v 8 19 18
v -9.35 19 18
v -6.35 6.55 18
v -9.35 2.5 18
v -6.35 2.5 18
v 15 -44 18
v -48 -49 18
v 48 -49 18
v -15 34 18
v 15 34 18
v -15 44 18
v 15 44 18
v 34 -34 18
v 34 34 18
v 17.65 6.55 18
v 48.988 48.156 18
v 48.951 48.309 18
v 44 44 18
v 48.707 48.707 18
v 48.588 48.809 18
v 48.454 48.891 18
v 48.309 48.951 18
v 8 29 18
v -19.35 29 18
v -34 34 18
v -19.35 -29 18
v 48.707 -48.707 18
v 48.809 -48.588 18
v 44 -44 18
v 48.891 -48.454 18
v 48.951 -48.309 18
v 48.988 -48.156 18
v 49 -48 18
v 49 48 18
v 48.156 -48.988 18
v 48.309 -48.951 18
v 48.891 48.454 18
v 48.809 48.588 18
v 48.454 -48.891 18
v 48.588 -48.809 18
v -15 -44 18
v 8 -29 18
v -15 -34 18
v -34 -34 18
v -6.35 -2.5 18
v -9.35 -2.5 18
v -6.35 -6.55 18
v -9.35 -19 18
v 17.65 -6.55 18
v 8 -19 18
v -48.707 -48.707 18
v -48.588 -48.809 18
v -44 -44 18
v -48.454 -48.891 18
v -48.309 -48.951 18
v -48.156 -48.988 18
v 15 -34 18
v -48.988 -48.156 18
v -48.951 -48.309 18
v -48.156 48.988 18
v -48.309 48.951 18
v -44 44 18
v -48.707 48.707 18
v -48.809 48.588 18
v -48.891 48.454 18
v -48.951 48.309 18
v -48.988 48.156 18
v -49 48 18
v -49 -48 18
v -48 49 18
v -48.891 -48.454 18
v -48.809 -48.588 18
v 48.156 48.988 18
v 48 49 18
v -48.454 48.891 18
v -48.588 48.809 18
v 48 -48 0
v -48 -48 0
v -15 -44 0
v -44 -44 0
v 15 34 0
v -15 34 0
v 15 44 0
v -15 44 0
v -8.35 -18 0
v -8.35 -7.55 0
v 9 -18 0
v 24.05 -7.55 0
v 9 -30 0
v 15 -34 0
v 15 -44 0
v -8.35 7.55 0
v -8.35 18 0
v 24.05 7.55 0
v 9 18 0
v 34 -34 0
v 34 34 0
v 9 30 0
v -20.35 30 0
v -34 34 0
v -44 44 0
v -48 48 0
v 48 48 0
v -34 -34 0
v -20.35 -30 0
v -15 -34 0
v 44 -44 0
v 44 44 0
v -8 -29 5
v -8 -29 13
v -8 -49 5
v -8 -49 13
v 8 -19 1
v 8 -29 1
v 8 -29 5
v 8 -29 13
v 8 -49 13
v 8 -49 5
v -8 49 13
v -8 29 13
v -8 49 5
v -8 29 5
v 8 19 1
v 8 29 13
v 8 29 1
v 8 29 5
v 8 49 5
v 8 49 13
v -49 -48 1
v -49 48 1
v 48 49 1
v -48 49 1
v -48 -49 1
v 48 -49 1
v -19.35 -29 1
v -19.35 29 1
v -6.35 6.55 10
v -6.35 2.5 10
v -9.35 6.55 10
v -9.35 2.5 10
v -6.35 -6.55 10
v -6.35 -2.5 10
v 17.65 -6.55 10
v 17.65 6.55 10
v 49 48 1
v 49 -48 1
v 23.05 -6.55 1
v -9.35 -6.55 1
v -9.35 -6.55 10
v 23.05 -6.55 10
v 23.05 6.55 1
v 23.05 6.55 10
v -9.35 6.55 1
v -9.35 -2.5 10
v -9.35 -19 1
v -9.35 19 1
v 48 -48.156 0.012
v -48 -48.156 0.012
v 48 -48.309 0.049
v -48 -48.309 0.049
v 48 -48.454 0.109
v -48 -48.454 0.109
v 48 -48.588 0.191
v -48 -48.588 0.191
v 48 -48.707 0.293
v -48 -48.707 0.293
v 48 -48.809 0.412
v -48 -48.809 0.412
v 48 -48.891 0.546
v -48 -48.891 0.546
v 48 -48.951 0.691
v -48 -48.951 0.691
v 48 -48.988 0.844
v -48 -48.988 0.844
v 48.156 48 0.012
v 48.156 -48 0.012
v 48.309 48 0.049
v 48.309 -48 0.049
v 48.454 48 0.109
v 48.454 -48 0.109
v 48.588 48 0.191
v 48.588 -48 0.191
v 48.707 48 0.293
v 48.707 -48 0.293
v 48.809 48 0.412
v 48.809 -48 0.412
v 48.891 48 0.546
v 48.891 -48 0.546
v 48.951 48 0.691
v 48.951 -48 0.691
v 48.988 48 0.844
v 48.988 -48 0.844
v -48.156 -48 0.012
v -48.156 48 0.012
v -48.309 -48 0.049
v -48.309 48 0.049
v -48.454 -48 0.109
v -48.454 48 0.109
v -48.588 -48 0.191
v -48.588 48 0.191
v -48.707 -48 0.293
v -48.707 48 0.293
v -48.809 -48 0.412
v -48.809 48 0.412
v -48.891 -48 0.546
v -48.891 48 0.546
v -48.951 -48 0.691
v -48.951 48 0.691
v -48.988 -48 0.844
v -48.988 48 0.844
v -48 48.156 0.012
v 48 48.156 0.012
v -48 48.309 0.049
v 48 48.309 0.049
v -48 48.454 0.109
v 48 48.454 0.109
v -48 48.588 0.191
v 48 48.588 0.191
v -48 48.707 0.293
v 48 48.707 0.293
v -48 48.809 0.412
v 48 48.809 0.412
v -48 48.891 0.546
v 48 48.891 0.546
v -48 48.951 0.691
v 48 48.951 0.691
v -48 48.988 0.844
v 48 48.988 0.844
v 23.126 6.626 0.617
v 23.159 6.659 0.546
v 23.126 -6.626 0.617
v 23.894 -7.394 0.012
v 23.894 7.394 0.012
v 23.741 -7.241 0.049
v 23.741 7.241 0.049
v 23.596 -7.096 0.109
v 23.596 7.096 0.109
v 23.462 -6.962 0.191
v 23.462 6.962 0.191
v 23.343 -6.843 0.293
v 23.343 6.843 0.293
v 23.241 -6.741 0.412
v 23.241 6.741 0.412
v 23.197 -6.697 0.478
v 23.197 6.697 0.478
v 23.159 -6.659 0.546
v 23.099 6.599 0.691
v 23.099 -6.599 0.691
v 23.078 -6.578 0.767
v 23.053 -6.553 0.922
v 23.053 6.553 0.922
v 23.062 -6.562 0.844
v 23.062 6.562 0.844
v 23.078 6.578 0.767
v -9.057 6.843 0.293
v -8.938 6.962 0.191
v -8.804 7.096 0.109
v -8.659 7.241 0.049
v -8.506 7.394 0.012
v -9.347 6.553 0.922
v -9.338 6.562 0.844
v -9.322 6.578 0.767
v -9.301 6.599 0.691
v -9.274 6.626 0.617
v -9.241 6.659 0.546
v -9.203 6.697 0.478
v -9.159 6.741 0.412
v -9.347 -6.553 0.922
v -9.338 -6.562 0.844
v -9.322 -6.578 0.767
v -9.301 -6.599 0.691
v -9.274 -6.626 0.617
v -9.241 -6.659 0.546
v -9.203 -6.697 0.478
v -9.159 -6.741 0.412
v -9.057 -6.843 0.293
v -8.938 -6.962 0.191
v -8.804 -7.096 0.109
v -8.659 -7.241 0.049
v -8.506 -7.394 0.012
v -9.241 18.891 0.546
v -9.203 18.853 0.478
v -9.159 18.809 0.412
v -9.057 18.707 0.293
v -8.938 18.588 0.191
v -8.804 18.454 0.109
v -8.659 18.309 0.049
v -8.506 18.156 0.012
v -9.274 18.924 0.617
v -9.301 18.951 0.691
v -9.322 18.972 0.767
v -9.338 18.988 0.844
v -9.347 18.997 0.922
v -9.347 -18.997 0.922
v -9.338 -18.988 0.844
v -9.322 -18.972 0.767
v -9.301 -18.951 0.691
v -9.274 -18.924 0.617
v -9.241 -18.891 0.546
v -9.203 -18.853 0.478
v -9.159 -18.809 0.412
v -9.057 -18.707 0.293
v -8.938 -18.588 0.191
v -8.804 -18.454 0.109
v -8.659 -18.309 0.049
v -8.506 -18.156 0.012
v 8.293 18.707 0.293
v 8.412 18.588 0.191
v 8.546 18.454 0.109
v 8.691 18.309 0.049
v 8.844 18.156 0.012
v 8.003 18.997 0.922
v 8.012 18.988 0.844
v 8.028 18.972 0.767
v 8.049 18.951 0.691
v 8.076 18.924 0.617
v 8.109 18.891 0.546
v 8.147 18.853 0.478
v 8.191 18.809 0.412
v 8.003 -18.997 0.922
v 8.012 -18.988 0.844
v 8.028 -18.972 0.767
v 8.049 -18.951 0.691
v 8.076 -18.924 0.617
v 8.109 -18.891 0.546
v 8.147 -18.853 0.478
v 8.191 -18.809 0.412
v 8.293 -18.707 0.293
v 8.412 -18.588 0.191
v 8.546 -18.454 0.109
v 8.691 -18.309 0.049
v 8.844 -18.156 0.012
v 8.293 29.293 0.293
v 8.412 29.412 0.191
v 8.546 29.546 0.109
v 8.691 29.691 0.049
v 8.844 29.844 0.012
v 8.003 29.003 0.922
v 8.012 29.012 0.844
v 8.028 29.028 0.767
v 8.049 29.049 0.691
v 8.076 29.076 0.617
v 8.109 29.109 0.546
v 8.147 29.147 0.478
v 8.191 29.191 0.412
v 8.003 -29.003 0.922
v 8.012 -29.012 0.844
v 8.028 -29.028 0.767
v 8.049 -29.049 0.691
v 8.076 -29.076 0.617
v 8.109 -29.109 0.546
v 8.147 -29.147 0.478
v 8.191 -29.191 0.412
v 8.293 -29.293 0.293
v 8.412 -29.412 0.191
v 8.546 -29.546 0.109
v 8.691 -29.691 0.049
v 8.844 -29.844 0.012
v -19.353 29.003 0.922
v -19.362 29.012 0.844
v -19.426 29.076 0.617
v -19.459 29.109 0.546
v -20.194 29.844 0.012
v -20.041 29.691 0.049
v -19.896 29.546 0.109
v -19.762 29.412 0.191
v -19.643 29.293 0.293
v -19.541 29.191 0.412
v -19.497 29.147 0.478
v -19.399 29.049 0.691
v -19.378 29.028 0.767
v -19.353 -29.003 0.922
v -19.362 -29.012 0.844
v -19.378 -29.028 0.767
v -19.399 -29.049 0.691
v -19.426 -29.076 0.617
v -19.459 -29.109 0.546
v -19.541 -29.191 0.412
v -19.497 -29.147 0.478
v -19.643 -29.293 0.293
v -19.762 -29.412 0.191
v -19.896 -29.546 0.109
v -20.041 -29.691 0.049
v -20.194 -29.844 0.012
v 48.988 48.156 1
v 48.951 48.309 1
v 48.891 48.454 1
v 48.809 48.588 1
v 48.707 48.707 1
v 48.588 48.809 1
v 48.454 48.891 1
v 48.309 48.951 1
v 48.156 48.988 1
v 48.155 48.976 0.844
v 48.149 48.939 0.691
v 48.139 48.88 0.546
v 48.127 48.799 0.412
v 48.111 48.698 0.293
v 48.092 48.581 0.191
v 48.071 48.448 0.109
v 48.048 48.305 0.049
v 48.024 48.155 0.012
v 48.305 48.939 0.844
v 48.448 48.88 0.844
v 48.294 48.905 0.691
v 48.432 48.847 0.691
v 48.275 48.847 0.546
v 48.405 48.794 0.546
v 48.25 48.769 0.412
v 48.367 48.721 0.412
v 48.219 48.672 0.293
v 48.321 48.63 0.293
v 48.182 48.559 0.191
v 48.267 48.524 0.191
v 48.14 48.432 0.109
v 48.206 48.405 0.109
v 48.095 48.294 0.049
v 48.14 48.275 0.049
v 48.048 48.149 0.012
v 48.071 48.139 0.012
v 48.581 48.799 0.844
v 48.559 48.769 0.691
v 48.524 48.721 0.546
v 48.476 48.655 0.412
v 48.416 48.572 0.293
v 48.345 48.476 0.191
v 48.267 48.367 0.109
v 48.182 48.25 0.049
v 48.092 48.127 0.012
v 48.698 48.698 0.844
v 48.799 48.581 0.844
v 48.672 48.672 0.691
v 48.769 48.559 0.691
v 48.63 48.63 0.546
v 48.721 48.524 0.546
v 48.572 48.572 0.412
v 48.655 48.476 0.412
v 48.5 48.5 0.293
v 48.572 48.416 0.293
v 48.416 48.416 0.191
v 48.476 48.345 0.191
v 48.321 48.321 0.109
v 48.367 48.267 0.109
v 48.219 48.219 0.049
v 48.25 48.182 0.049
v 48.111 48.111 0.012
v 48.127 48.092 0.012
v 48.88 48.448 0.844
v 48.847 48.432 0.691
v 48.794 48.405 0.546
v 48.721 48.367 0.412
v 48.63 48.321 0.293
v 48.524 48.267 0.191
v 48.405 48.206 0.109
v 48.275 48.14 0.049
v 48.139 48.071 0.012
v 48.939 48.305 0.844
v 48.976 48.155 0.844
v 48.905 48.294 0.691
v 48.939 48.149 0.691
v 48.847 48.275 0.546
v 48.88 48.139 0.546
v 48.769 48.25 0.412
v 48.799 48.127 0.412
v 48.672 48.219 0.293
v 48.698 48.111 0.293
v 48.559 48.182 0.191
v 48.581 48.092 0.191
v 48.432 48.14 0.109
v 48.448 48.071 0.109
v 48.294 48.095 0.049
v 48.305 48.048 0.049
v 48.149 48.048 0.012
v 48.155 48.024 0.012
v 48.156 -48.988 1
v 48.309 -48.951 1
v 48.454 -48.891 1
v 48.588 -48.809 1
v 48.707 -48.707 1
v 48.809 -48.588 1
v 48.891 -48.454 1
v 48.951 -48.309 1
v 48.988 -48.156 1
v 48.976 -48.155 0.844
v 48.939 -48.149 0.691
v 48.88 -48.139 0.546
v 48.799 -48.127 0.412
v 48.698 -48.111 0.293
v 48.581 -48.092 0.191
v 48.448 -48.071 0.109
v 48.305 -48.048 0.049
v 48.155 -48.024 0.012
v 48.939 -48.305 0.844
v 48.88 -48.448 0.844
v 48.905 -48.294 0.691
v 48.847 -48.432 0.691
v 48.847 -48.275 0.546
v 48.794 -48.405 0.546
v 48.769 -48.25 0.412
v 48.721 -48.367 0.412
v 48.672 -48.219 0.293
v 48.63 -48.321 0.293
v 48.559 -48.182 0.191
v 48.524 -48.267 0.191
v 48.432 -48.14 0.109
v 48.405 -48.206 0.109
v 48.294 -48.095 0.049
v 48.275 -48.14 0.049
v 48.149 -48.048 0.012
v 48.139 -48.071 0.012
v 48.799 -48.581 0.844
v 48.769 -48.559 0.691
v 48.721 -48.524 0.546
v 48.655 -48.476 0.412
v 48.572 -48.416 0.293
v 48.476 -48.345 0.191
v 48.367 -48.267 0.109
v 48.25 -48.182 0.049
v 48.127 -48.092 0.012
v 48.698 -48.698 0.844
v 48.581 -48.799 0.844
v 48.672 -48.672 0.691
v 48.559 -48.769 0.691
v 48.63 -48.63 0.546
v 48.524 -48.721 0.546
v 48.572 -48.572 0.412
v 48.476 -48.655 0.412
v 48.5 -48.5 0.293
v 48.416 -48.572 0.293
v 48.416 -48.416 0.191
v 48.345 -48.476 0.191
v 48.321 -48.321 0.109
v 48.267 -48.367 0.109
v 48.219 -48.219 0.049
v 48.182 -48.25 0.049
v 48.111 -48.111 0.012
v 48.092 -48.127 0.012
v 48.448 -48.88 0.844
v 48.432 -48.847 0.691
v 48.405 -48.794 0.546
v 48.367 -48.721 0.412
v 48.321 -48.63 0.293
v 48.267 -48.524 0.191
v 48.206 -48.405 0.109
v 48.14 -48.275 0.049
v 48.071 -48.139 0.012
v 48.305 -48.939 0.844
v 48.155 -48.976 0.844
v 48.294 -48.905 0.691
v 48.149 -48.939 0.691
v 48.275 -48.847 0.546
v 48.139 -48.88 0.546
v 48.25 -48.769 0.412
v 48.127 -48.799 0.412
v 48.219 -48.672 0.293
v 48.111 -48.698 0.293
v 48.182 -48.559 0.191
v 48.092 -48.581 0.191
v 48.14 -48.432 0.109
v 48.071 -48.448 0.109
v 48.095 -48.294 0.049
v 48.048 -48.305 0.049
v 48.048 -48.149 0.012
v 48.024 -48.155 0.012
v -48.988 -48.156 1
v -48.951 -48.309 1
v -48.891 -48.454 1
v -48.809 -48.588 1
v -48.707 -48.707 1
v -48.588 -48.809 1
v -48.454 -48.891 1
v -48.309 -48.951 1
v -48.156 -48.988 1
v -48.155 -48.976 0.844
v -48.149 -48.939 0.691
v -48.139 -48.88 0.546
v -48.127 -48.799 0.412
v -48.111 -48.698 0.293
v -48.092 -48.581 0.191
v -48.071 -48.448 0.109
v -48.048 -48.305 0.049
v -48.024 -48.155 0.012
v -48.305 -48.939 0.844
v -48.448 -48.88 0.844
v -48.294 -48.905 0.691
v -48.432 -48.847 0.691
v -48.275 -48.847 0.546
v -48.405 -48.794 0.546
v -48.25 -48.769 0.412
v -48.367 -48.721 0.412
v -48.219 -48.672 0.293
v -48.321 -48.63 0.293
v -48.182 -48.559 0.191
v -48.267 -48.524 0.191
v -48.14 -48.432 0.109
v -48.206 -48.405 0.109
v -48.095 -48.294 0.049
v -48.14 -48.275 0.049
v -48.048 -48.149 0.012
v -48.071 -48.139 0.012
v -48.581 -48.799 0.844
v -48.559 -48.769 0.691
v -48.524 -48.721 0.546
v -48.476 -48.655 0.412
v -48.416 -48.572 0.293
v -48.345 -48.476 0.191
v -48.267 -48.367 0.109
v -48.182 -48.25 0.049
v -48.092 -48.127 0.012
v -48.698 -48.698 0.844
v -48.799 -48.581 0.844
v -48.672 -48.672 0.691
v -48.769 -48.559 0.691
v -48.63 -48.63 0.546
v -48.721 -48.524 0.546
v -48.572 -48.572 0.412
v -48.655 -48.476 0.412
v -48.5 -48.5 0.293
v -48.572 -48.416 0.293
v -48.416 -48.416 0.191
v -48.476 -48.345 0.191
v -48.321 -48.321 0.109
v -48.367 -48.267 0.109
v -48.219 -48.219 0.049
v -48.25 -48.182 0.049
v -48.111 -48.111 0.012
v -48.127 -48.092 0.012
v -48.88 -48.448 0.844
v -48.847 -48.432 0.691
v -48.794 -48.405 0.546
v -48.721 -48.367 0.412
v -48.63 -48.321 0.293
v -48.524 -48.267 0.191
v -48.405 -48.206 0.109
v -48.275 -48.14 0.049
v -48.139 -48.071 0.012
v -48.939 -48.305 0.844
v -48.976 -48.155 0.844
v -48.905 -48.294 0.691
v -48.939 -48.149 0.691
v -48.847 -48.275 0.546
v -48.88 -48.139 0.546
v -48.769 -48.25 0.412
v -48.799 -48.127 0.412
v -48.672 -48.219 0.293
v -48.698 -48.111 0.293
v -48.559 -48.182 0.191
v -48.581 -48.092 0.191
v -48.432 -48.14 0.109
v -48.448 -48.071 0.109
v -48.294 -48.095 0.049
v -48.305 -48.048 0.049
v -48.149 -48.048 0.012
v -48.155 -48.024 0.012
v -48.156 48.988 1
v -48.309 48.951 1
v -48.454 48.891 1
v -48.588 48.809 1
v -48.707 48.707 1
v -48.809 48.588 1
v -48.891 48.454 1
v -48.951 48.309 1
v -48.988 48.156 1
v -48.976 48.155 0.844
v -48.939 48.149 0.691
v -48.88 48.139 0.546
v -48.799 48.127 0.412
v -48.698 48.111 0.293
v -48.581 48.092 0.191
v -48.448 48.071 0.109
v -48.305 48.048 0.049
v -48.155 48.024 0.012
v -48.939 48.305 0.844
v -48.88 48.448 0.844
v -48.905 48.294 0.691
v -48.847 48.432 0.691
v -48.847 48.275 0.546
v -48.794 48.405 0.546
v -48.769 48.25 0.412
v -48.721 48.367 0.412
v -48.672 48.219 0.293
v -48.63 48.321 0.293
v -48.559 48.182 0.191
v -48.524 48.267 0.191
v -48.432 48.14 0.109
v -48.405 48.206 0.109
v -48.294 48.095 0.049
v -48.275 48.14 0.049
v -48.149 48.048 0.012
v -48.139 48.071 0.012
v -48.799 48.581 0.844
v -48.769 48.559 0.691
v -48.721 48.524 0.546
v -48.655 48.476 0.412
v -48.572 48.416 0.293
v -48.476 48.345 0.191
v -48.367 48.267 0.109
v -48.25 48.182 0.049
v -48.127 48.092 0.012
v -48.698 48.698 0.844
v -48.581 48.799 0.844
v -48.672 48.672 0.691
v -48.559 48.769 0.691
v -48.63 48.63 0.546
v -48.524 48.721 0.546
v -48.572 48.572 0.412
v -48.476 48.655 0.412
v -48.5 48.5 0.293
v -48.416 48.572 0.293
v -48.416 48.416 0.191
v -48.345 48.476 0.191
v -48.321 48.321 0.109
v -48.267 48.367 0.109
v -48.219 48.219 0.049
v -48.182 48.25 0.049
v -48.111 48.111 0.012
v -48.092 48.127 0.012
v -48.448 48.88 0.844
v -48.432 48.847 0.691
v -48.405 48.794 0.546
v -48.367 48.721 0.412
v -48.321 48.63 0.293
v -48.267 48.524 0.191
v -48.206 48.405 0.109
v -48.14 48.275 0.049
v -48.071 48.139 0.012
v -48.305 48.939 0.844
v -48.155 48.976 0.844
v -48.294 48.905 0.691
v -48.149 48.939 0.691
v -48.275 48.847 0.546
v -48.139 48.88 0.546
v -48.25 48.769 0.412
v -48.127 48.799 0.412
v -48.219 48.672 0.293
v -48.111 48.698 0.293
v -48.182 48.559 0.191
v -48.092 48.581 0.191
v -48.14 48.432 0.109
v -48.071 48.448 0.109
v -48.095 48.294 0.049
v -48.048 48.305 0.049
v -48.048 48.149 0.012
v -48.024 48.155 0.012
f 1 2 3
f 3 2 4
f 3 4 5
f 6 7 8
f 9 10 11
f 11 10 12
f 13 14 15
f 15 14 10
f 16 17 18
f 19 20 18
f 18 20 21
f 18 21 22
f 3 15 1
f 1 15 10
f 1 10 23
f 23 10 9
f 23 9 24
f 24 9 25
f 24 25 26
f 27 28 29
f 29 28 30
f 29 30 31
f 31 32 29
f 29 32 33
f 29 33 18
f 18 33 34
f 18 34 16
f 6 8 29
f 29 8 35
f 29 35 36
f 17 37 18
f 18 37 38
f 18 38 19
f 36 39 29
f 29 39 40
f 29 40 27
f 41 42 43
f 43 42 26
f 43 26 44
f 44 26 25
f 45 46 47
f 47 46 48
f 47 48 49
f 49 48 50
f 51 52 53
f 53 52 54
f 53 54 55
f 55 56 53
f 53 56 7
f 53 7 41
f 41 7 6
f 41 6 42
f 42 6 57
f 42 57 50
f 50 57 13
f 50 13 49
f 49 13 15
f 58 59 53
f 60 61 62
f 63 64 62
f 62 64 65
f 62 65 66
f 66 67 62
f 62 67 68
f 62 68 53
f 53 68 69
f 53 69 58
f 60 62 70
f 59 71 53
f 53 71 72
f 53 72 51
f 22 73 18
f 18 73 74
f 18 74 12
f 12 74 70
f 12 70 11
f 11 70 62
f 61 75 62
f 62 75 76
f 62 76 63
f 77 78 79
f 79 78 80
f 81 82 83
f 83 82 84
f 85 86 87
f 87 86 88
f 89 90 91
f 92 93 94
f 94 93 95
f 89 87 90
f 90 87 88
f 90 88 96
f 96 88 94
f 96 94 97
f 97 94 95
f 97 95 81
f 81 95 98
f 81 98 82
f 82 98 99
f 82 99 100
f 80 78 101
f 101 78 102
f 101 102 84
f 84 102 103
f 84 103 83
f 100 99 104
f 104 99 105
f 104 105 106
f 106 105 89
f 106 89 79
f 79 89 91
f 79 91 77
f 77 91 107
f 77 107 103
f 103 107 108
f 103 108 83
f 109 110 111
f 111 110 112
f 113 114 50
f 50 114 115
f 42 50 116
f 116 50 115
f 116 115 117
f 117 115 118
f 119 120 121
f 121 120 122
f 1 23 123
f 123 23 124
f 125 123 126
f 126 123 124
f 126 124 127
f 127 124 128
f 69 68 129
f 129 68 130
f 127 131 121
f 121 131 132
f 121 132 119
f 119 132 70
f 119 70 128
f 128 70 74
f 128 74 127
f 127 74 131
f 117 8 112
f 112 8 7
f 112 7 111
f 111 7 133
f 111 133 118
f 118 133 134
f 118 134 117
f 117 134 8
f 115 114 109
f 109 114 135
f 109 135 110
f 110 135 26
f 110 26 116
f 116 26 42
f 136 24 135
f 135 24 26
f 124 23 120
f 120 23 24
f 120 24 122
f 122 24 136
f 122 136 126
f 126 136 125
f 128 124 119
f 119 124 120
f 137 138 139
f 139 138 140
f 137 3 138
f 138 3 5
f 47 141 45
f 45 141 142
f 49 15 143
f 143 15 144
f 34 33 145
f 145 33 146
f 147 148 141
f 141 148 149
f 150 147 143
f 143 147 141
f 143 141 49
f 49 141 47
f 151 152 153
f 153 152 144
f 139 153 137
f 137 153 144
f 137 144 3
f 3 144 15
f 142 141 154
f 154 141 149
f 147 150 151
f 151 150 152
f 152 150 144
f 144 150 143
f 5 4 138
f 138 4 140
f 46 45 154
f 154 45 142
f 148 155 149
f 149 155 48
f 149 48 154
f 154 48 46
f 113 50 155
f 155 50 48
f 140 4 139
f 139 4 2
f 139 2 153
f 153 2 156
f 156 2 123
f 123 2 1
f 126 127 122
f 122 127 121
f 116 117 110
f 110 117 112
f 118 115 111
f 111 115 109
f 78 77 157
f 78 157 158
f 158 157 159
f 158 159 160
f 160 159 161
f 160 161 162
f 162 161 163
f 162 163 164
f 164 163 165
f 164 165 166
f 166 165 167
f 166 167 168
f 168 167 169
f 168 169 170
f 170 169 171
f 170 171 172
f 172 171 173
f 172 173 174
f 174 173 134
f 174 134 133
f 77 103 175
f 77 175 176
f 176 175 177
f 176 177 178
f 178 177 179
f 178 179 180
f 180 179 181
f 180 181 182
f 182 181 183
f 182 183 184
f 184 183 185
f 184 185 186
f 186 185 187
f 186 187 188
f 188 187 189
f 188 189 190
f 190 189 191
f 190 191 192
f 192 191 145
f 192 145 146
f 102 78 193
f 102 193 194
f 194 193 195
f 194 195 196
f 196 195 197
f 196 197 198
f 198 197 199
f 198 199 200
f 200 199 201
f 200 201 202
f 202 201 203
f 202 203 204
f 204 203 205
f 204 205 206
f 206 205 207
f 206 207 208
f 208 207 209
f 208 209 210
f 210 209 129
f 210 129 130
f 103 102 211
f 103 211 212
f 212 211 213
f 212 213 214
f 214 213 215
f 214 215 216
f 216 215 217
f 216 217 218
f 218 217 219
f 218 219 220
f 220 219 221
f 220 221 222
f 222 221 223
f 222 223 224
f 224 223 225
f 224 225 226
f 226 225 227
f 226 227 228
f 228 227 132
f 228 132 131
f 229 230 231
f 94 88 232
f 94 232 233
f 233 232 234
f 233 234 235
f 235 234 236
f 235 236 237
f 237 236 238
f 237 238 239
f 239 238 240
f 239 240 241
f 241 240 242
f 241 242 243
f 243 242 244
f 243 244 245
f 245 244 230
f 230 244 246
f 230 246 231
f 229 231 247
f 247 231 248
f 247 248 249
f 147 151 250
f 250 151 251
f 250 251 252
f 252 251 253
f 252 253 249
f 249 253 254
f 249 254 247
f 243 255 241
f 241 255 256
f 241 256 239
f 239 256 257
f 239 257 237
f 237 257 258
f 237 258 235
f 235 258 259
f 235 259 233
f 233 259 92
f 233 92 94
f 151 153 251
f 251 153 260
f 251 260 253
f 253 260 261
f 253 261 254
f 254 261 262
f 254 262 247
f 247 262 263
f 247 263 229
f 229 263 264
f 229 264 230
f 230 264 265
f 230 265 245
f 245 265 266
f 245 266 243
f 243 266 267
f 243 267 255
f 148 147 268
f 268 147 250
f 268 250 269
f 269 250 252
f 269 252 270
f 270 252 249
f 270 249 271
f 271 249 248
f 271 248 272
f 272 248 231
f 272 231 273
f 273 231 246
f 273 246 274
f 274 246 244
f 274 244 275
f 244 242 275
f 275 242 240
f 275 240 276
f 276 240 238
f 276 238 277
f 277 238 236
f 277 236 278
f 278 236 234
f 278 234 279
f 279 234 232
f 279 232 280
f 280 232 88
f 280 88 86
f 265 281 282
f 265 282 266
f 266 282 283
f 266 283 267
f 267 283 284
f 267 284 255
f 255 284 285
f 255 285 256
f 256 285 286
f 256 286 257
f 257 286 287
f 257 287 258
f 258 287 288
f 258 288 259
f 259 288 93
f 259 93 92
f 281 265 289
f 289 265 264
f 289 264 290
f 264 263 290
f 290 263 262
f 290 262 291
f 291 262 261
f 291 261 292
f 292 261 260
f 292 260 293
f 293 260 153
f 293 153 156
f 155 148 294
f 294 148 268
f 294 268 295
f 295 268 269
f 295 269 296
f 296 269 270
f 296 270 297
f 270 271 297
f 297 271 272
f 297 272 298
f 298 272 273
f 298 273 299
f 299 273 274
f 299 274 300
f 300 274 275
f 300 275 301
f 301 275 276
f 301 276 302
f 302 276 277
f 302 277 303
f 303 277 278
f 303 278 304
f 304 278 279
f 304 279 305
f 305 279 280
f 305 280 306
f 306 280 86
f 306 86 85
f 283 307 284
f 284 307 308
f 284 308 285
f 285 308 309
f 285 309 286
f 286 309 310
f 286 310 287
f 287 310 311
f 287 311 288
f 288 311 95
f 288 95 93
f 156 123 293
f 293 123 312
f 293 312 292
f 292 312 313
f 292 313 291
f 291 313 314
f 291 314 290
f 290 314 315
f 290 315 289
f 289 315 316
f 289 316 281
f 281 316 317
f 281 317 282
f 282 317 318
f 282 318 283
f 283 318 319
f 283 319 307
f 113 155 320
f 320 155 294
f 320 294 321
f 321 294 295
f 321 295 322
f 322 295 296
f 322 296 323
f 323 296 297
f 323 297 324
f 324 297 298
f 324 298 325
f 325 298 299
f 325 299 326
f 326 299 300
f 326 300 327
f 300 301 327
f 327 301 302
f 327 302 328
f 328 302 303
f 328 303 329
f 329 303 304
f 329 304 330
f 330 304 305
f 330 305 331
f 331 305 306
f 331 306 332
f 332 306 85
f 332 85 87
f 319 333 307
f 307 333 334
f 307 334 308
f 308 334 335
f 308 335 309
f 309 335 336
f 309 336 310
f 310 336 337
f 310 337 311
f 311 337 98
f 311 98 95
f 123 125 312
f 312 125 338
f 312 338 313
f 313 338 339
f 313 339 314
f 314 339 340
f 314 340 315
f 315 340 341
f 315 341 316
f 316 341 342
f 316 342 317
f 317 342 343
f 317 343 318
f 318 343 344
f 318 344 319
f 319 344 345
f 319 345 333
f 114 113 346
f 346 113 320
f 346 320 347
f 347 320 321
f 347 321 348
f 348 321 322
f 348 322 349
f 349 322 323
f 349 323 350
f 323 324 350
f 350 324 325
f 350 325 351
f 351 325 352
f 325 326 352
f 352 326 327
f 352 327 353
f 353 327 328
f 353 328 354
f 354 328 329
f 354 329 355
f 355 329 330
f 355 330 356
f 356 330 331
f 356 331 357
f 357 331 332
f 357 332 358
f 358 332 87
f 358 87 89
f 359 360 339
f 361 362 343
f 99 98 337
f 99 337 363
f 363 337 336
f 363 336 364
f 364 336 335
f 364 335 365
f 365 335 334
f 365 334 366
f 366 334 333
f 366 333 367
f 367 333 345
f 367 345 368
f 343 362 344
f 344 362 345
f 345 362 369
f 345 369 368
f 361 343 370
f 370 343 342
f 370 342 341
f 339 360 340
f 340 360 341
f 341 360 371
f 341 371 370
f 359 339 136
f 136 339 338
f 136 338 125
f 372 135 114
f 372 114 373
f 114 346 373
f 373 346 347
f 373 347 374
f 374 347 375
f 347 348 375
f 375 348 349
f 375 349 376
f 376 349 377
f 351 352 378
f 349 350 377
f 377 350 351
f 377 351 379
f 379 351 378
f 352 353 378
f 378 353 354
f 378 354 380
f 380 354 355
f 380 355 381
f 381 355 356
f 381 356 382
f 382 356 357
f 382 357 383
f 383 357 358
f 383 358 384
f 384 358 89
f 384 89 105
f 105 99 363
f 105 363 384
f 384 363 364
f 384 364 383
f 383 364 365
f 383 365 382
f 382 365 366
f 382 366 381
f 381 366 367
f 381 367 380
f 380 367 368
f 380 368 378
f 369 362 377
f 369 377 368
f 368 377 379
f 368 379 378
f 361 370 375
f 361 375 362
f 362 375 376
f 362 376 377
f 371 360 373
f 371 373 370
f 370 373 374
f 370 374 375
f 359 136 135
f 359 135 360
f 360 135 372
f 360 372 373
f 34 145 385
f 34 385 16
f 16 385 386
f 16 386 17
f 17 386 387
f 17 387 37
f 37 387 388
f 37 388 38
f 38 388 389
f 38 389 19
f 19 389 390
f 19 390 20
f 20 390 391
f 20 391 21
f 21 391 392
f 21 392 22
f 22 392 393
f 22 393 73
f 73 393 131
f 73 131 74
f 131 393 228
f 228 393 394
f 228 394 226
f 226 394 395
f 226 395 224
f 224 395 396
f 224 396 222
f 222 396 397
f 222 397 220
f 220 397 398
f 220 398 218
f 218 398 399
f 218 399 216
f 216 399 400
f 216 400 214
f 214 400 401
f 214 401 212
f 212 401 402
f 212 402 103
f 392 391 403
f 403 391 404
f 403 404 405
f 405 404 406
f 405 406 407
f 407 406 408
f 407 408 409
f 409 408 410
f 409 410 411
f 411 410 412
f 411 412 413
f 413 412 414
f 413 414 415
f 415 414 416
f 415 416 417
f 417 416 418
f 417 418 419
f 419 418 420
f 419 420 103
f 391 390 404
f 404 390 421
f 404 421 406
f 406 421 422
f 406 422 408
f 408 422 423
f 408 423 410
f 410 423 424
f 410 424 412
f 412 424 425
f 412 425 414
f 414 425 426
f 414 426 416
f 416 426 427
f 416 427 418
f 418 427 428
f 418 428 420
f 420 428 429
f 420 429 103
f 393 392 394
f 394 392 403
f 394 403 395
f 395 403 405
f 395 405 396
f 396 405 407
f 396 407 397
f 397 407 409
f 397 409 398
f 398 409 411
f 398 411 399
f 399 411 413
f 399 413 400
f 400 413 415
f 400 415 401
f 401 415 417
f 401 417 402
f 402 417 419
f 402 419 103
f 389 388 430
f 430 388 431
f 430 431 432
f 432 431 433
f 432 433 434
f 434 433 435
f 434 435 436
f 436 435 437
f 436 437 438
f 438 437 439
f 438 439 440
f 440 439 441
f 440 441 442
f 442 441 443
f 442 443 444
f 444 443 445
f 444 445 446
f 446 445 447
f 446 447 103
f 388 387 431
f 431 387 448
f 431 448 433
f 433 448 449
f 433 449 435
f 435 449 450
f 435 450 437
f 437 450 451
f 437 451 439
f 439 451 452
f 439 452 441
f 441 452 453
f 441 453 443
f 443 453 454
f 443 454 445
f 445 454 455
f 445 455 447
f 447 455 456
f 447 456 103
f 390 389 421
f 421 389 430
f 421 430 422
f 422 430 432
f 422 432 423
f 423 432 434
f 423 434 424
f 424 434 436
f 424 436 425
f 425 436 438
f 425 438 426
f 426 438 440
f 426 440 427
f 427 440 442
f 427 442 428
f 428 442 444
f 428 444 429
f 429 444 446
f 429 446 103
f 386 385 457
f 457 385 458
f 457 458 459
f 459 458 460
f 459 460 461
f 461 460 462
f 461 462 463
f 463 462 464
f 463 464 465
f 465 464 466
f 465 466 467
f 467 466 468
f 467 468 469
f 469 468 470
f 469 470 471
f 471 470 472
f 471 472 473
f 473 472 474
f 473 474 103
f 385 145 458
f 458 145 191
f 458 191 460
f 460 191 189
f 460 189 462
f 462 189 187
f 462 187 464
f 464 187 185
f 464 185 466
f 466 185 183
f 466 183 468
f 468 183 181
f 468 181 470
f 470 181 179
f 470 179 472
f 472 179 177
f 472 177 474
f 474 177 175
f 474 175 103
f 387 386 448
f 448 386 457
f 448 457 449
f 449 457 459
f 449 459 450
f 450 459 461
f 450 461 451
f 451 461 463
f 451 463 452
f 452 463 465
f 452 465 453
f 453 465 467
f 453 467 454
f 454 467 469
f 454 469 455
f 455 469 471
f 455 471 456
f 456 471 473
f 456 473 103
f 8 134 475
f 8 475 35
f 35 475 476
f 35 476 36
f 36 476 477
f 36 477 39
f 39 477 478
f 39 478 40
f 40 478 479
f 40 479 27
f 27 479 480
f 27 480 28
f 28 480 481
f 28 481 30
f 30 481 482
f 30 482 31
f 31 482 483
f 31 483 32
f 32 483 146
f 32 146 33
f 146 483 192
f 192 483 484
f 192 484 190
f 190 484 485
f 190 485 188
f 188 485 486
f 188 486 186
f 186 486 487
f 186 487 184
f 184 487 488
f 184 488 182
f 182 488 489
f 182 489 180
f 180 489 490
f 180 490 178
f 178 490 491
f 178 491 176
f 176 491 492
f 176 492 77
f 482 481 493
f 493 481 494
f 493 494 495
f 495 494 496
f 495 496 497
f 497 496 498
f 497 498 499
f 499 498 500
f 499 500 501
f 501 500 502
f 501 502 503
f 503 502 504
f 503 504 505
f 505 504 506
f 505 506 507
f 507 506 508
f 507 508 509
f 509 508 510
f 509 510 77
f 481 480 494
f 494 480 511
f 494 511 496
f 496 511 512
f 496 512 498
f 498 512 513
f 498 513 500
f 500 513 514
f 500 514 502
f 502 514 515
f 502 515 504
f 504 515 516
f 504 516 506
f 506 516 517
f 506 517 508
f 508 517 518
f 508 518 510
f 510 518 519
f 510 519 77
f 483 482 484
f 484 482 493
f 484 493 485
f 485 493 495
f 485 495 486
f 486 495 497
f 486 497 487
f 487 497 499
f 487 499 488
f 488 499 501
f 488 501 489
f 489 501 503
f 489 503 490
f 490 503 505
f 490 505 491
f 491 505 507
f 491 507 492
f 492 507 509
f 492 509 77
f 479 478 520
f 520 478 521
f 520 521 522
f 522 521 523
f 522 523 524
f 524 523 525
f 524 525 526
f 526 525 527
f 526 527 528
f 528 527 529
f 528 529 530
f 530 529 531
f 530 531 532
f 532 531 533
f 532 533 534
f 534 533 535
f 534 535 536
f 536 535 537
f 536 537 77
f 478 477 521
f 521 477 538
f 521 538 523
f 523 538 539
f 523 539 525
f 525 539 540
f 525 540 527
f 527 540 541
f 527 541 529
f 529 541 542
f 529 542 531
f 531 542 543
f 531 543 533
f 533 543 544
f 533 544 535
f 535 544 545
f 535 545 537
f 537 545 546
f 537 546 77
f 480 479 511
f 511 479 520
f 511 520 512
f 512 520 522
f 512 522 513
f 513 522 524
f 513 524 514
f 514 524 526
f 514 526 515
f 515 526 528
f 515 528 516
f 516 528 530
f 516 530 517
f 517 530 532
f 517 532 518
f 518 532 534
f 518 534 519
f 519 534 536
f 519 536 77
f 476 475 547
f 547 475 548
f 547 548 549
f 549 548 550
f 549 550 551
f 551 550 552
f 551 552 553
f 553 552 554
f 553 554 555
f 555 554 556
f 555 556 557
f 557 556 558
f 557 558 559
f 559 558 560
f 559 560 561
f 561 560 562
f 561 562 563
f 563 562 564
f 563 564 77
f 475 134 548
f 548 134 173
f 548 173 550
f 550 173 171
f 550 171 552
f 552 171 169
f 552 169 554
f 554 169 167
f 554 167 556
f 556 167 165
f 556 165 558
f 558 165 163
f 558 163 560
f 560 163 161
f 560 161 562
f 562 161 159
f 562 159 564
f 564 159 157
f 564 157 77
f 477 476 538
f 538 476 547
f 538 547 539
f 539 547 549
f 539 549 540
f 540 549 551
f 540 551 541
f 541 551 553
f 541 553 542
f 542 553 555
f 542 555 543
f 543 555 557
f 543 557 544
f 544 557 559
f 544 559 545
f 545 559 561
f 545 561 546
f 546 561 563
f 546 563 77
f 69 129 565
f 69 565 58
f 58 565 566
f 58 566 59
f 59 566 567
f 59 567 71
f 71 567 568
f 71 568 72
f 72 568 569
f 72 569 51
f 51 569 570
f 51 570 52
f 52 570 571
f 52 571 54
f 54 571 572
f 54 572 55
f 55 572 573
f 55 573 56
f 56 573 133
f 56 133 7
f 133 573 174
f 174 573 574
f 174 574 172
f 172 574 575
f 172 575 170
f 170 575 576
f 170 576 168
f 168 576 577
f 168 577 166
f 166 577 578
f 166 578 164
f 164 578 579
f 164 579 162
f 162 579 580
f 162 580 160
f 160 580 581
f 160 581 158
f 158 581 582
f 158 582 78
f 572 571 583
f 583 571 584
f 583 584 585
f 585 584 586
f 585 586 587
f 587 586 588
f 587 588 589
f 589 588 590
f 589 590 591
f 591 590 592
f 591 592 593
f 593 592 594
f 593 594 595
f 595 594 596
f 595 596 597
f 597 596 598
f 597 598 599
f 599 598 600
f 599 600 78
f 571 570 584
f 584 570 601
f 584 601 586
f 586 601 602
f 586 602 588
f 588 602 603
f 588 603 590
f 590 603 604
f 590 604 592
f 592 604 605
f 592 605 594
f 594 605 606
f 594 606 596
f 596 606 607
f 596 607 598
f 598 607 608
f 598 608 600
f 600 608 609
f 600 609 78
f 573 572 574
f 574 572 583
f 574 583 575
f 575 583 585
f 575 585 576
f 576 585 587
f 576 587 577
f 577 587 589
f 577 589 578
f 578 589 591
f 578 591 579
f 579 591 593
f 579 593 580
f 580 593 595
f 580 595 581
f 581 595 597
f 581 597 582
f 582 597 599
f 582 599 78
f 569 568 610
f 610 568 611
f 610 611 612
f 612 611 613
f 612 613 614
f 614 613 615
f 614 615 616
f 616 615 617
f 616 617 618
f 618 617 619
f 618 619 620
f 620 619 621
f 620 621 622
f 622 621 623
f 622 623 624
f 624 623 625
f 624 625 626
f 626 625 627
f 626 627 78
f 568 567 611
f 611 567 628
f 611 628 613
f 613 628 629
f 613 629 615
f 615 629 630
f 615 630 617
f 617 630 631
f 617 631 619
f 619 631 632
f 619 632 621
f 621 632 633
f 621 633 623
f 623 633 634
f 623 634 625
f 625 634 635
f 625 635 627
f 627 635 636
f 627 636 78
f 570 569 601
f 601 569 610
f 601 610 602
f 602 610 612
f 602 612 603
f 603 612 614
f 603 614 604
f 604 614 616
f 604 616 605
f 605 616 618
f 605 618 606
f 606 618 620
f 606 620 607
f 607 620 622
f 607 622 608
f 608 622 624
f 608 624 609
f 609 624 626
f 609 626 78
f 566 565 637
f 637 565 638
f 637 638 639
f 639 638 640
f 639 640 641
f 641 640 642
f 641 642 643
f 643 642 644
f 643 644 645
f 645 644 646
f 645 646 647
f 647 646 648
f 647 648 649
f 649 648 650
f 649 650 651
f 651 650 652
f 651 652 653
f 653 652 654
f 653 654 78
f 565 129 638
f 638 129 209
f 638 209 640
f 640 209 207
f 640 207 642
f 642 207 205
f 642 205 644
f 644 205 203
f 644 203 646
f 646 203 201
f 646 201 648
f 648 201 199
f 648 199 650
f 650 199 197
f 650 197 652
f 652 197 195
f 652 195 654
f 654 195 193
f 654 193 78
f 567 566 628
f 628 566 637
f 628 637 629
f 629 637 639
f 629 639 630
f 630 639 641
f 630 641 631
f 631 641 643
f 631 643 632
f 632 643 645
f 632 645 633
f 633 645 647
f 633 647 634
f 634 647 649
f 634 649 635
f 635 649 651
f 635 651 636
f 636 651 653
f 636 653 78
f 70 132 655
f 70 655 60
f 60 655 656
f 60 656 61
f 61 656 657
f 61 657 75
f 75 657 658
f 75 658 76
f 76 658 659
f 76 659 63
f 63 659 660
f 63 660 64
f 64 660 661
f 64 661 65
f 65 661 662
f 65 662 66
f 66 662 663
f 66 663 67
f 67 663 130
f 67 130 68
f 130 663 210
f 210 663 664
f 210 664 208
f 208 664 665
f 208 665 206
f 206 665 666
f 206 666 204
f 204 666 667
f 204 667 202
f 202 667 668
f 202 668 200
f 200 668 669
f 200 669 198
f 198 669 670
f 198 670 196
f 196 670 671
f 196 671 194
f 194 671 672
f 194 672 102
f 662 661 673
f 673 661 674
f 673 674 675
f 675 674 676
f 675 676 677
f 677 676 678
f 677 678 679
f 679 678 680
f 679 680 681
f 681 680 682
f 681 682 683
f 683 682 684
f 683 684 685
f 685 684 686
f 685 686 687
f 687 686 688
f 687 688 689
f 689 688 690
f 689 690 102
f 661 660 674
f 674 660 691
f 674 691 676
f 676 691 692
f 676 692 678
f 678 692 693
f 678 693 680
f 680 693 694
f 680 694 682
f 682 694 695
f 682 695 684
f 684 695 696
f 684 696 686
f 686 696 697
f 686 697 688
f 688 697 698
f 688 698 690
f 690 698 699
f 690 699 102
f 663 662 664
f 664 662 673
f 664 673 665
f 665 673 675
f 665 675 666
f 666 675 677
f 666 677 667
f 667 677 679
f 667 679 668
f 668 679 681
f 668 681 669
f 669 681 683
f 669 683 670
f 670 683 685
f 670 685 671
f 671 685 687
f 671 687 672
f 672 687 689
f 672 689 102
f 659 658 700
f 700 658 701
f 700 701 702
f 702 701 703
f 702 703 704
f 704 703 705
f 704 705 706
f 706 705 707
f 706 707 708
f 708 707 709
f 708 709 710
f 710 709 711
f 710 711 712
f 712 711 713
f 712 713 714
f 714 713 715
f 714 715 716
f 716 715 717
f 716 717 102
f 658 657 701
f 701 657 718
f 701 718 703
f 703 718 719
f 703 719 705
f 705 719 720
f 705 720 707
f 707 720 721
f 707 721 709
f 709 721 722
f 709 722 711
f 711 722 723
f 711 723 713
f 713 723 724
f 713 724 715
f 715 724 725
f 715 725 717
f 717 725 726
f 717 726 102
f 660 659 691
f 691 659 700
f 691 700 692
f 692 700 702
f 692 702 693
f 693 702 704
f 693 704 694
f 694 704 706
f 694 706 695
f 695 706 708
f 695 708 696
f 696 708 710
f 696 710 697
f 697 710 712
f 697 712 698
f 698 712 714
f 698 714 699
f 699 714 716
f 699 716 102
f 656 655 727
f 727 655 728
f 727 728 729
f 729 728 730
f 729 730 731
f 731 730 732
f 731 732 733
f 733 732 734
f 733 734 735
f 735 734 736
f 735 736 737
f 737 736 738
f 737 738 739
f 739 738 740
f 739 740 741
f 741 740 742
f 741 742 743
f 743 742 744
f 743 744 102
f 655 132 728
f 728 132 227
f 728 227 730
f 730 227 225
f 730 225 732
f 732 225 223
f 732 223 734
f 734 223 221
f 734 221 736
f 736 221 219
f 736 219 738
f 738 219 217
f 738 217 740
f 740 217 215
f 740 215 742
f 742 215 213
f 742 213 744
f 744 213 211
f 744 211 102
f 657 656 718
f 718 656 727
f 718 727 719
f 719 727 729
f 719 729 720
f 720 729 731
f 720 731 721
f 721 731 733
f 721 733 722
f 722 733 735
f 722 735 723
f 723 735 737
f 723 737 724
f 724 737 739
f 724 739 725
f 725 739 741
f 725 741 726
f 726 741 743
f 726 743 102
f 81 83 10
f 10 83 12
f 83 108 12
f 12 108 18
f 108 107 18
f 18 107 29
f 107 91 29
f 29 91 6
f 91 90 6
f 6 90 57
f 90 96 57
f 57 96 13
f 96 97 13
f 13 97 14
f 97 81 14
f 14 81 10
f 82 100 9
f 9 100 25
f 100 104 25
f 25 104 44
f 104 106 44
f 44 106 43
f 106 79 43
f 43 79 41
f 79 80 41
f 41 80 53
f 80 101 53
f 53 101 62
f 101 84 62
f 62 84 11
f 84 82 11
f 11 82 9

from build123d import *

# Parameters (mm, degrees)
SKETCH1_W           = 98
SKETCH1_H           = 98
BOSS_EXTRUDE1_DEPTH = 18
SKETCH2_W           = 24
SKETCH2_H           = 13.1
CUT_EXTRUDE1_DEPTH  = 18
SKETCH2_4_W         = 5.2
SKETCH2_4_H         = 12.7
SKETCH2_4_H_2       = 0.2
CUT_EXTRUDE2_DEPTH  = 10
CUT_EXTRUDE3_DEPTH  = 8
SKETCH5_W           = 10
SKETCH5_H           = 5
CUT_EXTRUDE4_DEPTH  = 18
SKETCH6_W           = 5
SKETCH6_H           = 20
BOSS_EXTRUDE2_DEPTH = 16
FILLET1_R           = 1
FILLET2_R           = 1
CUT_EXTRUDE5_DEPTH  = 18


with BuildPart() as part:
    # Sketch1 → Boss-Extrude1 (new body)
    with BuildSketch(Plane.XY):
        Rectangle(SKETCH1_W, SKETCH1_H)
    extrude(amount=BOSS_EXTRUDE1_DEPTH)

    # Sketch2 → Cut-Extrude1 (cut)
    with BuildSketch(Plane(origin=(0, 0, 0), x_dir=(-1, 0, 0), z_dir=(0, 0, -1))):
        with Locations((-5.65, 0)):
            Rectangle(SKETCH2_W, SKETCH2_H)
    extrude(amount=-CUT_EXTRUDE1_DEPTH, mode=Mode.SUBTRACT)

    # Sketch2<4> → Cut-Extrude2 (cut)
    with BuildSketch(Plane(origin=(0, 0, 0), x_dir=(-1, 0, 0), z_dir=(0, 0, -1))):
        with Locations((-20.25, 0)):
            Rectangle(SKETCH2_4_W, SKETCH2_4_H)
        Polygon((-22.85, 6.35), (-17.65, 6.35), (-17.65, 6.55), (-22.85, 6.55), (-23.05, 6.55), (-23.05, 6.35), (-23.05, -6.55), (-17.65, -6.55), (-17.65, -6.35), (-22.85, -6.35), align=None)
        Polygon((11.55, 6.35), (6.35, 6.35), (6.35, 0), (6.35, -6.15), (11.55, -6.15), align=None)
        Polygon((6.35, 6.55), (6.35, 6.35), (11.55, 6.35), (11.55, -6.15), (11.55, -6.35), (6.35, -6.35), (6.35, -6.55), (11.55, -6.55), (11.75, -6.55), (11.75, -6.35), (11.75, 6.55), align=None)
        with Locations((8.95, -6.25)):
            Rectangle(SKETCH2_4_W, SKETCH2_4_H_2)
    extrude(amount=-CUT_EXTRUDE2_DEPTH, mode=Mode.SUBTRACT)

    # Sketch4 → Cut-Extrude3 (cut)
    with BuildSketch(Plane(origin=(0, 0, 10), x_dir=(-1, 0, 0), z_dir=(0, 0, -1))):
        Polygon((6.35, 0), (6.35, 2.5), (9.35, 2.5), (9.35, -2.5), (6.35, -2.5), align=None)
    extrude(amount=-CUT_EXTRUDE3_DEPTH, mode=Mode.SUBTRACT)

    # Sketch5 → Cut-Extrude4 (cut)
    with BuildSketch(Plane.XY.offset(18)):
        with Locations((-14.35, 0)):
            Rectangle(SKETCH5_W, SKETCH5_H)
        Polygon((-19.35, 2.5), (-9.35, 2.5), (-9.35, 19), (8, 19), (8, 29), (8, 49), (0, 49), (-8, 49), (-8, 29), (-19.35, 29), align=None)
        Polygon((-9.35, -19), (-9.35, -2.5), (-19.35, -2.5), (-19.35, -29), (-8, -29), (-8, -49), (0, -49), (8, -49), (8, -29), (8, -19), align=None)
    extrude(amount=-CUT_EXTRUDE4_DEPTH, mode=Mode.SUBTRACT)


with BuildPart() as cut_extrude4_piece_1:
    # of the separate pieces the step leaves, piece 1, a body of its own (cut_extrude4_pieces)
    add(part.part.solids().sort_by_distance((8, 49, 0))[0])



with BuildPart() as cut_extrude4_piece_2:
    # of the separate pieces the step leaves, piece 2, a body of its own (cut_extrude4_pieces)
    add(part.part.solids().sort_by_distance((-49, 49, 0))[0])


with BuildPart() as cut_extrude4_piece_1_1:
    add(cut_extrude4_piece_1.part)

    add(cut_extrude4_piece_2.part)  # Boss-Extrude2 merges Cut-Extrude4 piece 2
    # Sketch6 → Boss-Extrude2 (add)
    with BuildSketch(Plane(origin=(-8, 0, 0), x_dir=(0, 0, -1), z_dir=(1, 0, 0))):
        with Locations((-15.5, 39)):
            Rectangle(SKETCH6_W, SKETCH6_H)
        with Locations((-2.5, 39)):
            Rectangle(SKETCH6_W, SKETCH6_H)
        with Locations((-15.5, -39)):
            Rectangle(SKETCH6_W, SKETCH6_H)
        with Locations((-2.5, -39)):
            Rectangle(SKETCH6_W, SKETCH6_H)
    extrude(amount=BOSS_EXTRUDE2_DEPTH)

    # Fillet1
    fillet1_edges = [cut_extrude4_piece_1_1.edges().sort_by_distance(p)[0] for p in [
        (-19.35, 0, 0),
        (-5.675, 29, 0),
        (-5.675, -29, 0),
        (-0.675, -19, 0),
        (-9.35, -12.775, 0),
        (6.85, -6.55, 0),
        (6.85, 6.55, 0),
        (-9.35, 12.775, 0),
        (49, 0, 0),
        (23.05, 0, 0),
        (-0.675, 19, 0),
        (8, 24, 0),
        (8, -24, 0),
        (0, -49, 0),
        (-49, 0, 0),
        (0, 49, 0),
    ]]
    fillet(fillet1_edges, radius=FILLET1_R)

    # Fillet2
    # the kernel refuses this fillet: 1 mm, written as the material it takes off along each edge
    with BuildSketch(Plane(origin=(48, -48, 1), x_dir=(0, -1, 0), z_dir=(1, 0, 0))) as fillet2_piece_1_section:
        Polygon((0, 0), (FILLET2_R, 0), (FILLET2_R, FILLET2_R), (0, FILLET2_R), align=None)
    fillet2_piece_1 = extrude(amount=FILLET2_R, mode=Mode.PRIVATE)
    fillet2_piece_1 = fillet2_piece_1 - Plane(origin=(48, -48, 1), x_dir=(0, 0.7071067811865475, 0.7071067811865475), z_dir=(1, 0, 0)) * Sphere(FILLET2_R, mode=Mode.PRIVATE)
    add(fillet2_piece_1, mode=Mode.SUBTRACT)
    with BuildSketch(Plane(origin=(-48, -48, 1), x_dir=(0, -1, 0), z_dir=(-1, 0, 0))) as fillet2_piece_2_section:
        Polygon((0, 0), (FILLET2_R, 0), (FILLET2_R, -FILLET2_R), (0, -FILLET2_R), align=None)
    fillet2_piece_2 = extrude(amount=FILLET2_R, mode=Mode.PRIVATE)
    fillet2_piece_2 = fillet2_piece_2 - Plane(origin=(-48, -48, 1), x_dir=(0, 0.7071067811865475, 0.7071067811865475), z_dir=(-1, 0, 0)) * Sphere(FILLET2_R, mode=Mode.PRIVATE)
    add(fillet2_piece_2, mode=Mode.SUBTRACT)
    with BuildSketch(Plane(origin=(48, 48, 1), x_dir=(1, 0, 0), z_dir=(0, 1, 0))) as fillet2_piece_3_section:
        Polygon((0, 0), (FILLET2_R, 0), (FILLET2_R, FILLET2_R), (0, FILLET2_R), align=None)
    fillet2_piece_3 = extrude(amount=FILLET2_R, mode=Mode.PRIVATE)
    fillet2_piece_3 = fillet2_piece_3 - Plane(origin=(48, 48, 1), x_dir=(-0.7071067811865475, 0, 0.7071067811865475), z_dir=(0, 1, 0)) * Sphere(FILLET2_R, mode=Mode.PRIVATE)
    add(fillet2_piece_3, mode=Mode.SUBTRACT)
    with BuildSketch(Plane(origin=(-48, 48, 1), x_dir=(-1, 0, 0), z_dir=(0, 1, 0))) as fillet2_piece_4_section:
        Polygon((0, 0), (FILLET2_R, 0), (FILLET2_R, -FILLET2_R), (0, -FILLET2_R), align=None)
    fillet2_piece_4 = extrude(amount=FILLET2_R, mode=Mode.PRIVATE)
    fillet2_piece_4 = fillet2_piece_4 - Plane(origin=(-48, 48, 1), x_dir=(0.7071067811865475, 0, 0.7071067811865475), z_dir=(0, 1, 0)) * Sphere(FILLET2_R, mode=Mode.PRIVATE)
    add(fillet2_piece_4, mode=Mode.SUBTRACT)
    with BuildSketch(Plane(origin=(49, 49, 1), x_dir=(-1, 0, 0), z_dir=(0, 0, 1)), Plane(origin=(49, -49, 1), x_dir=(0, 1, 0), z_dir=(0, 0, 1))) as fillet2_piece_5:
        with BuildLine():
            CenterArc((FILLET2_R, FILLET2_R), FILLET2_R, 180, 90)
            Line((0, FILLET2_R), (0, 0))
            Line((0, 0), (FILLET2_R, 0))
        make_face()
    extrude(amount=19.5, mode=Mode.SUBTRACT)
    with BuildSketch(Plane(origin=(-49, -49, 1), x_dir=(0, 1, 0), z_dir=(0, 0, 1)), Plane(origin=(-49, 49, 1), x_dir=(1, 0, 0), z_dir=(0, 0, 1))) as fillet2_piece_6:
        with BuildLine():
            CenterArc((FILLET2_R, -FILLET2_R), FILLET2_R, 90, 90)
            Line((0, -FILLET2_R), (0, 0))
            Line((0, 0), (FILLET2_R, 0))
        make_face()
    extrude(amount=19.5, mode=Mode.SUBTRACT)

    # Sketch8 → Cut-Extrude5 (cut)
    with BuildSketch(Plane.XY.offset(18)):
        Polygon((-15, -34), (-34, -34), (-34, 34), (-15, 34), (-15, 44), (-44, 44), (-44, -44), (-15, -44), align=None)
        Polygon((34, -34), (15, -34), (15, -44), (44, -44), (44, 44), (15, 44), (15, 34), (34, 34), align=None)
    extrude(amount=-CUT_EXTRUDE5_DEPTH, mode=Mode.SUBTRACT)


solid = cut_extrude4_piece_1_1.part
